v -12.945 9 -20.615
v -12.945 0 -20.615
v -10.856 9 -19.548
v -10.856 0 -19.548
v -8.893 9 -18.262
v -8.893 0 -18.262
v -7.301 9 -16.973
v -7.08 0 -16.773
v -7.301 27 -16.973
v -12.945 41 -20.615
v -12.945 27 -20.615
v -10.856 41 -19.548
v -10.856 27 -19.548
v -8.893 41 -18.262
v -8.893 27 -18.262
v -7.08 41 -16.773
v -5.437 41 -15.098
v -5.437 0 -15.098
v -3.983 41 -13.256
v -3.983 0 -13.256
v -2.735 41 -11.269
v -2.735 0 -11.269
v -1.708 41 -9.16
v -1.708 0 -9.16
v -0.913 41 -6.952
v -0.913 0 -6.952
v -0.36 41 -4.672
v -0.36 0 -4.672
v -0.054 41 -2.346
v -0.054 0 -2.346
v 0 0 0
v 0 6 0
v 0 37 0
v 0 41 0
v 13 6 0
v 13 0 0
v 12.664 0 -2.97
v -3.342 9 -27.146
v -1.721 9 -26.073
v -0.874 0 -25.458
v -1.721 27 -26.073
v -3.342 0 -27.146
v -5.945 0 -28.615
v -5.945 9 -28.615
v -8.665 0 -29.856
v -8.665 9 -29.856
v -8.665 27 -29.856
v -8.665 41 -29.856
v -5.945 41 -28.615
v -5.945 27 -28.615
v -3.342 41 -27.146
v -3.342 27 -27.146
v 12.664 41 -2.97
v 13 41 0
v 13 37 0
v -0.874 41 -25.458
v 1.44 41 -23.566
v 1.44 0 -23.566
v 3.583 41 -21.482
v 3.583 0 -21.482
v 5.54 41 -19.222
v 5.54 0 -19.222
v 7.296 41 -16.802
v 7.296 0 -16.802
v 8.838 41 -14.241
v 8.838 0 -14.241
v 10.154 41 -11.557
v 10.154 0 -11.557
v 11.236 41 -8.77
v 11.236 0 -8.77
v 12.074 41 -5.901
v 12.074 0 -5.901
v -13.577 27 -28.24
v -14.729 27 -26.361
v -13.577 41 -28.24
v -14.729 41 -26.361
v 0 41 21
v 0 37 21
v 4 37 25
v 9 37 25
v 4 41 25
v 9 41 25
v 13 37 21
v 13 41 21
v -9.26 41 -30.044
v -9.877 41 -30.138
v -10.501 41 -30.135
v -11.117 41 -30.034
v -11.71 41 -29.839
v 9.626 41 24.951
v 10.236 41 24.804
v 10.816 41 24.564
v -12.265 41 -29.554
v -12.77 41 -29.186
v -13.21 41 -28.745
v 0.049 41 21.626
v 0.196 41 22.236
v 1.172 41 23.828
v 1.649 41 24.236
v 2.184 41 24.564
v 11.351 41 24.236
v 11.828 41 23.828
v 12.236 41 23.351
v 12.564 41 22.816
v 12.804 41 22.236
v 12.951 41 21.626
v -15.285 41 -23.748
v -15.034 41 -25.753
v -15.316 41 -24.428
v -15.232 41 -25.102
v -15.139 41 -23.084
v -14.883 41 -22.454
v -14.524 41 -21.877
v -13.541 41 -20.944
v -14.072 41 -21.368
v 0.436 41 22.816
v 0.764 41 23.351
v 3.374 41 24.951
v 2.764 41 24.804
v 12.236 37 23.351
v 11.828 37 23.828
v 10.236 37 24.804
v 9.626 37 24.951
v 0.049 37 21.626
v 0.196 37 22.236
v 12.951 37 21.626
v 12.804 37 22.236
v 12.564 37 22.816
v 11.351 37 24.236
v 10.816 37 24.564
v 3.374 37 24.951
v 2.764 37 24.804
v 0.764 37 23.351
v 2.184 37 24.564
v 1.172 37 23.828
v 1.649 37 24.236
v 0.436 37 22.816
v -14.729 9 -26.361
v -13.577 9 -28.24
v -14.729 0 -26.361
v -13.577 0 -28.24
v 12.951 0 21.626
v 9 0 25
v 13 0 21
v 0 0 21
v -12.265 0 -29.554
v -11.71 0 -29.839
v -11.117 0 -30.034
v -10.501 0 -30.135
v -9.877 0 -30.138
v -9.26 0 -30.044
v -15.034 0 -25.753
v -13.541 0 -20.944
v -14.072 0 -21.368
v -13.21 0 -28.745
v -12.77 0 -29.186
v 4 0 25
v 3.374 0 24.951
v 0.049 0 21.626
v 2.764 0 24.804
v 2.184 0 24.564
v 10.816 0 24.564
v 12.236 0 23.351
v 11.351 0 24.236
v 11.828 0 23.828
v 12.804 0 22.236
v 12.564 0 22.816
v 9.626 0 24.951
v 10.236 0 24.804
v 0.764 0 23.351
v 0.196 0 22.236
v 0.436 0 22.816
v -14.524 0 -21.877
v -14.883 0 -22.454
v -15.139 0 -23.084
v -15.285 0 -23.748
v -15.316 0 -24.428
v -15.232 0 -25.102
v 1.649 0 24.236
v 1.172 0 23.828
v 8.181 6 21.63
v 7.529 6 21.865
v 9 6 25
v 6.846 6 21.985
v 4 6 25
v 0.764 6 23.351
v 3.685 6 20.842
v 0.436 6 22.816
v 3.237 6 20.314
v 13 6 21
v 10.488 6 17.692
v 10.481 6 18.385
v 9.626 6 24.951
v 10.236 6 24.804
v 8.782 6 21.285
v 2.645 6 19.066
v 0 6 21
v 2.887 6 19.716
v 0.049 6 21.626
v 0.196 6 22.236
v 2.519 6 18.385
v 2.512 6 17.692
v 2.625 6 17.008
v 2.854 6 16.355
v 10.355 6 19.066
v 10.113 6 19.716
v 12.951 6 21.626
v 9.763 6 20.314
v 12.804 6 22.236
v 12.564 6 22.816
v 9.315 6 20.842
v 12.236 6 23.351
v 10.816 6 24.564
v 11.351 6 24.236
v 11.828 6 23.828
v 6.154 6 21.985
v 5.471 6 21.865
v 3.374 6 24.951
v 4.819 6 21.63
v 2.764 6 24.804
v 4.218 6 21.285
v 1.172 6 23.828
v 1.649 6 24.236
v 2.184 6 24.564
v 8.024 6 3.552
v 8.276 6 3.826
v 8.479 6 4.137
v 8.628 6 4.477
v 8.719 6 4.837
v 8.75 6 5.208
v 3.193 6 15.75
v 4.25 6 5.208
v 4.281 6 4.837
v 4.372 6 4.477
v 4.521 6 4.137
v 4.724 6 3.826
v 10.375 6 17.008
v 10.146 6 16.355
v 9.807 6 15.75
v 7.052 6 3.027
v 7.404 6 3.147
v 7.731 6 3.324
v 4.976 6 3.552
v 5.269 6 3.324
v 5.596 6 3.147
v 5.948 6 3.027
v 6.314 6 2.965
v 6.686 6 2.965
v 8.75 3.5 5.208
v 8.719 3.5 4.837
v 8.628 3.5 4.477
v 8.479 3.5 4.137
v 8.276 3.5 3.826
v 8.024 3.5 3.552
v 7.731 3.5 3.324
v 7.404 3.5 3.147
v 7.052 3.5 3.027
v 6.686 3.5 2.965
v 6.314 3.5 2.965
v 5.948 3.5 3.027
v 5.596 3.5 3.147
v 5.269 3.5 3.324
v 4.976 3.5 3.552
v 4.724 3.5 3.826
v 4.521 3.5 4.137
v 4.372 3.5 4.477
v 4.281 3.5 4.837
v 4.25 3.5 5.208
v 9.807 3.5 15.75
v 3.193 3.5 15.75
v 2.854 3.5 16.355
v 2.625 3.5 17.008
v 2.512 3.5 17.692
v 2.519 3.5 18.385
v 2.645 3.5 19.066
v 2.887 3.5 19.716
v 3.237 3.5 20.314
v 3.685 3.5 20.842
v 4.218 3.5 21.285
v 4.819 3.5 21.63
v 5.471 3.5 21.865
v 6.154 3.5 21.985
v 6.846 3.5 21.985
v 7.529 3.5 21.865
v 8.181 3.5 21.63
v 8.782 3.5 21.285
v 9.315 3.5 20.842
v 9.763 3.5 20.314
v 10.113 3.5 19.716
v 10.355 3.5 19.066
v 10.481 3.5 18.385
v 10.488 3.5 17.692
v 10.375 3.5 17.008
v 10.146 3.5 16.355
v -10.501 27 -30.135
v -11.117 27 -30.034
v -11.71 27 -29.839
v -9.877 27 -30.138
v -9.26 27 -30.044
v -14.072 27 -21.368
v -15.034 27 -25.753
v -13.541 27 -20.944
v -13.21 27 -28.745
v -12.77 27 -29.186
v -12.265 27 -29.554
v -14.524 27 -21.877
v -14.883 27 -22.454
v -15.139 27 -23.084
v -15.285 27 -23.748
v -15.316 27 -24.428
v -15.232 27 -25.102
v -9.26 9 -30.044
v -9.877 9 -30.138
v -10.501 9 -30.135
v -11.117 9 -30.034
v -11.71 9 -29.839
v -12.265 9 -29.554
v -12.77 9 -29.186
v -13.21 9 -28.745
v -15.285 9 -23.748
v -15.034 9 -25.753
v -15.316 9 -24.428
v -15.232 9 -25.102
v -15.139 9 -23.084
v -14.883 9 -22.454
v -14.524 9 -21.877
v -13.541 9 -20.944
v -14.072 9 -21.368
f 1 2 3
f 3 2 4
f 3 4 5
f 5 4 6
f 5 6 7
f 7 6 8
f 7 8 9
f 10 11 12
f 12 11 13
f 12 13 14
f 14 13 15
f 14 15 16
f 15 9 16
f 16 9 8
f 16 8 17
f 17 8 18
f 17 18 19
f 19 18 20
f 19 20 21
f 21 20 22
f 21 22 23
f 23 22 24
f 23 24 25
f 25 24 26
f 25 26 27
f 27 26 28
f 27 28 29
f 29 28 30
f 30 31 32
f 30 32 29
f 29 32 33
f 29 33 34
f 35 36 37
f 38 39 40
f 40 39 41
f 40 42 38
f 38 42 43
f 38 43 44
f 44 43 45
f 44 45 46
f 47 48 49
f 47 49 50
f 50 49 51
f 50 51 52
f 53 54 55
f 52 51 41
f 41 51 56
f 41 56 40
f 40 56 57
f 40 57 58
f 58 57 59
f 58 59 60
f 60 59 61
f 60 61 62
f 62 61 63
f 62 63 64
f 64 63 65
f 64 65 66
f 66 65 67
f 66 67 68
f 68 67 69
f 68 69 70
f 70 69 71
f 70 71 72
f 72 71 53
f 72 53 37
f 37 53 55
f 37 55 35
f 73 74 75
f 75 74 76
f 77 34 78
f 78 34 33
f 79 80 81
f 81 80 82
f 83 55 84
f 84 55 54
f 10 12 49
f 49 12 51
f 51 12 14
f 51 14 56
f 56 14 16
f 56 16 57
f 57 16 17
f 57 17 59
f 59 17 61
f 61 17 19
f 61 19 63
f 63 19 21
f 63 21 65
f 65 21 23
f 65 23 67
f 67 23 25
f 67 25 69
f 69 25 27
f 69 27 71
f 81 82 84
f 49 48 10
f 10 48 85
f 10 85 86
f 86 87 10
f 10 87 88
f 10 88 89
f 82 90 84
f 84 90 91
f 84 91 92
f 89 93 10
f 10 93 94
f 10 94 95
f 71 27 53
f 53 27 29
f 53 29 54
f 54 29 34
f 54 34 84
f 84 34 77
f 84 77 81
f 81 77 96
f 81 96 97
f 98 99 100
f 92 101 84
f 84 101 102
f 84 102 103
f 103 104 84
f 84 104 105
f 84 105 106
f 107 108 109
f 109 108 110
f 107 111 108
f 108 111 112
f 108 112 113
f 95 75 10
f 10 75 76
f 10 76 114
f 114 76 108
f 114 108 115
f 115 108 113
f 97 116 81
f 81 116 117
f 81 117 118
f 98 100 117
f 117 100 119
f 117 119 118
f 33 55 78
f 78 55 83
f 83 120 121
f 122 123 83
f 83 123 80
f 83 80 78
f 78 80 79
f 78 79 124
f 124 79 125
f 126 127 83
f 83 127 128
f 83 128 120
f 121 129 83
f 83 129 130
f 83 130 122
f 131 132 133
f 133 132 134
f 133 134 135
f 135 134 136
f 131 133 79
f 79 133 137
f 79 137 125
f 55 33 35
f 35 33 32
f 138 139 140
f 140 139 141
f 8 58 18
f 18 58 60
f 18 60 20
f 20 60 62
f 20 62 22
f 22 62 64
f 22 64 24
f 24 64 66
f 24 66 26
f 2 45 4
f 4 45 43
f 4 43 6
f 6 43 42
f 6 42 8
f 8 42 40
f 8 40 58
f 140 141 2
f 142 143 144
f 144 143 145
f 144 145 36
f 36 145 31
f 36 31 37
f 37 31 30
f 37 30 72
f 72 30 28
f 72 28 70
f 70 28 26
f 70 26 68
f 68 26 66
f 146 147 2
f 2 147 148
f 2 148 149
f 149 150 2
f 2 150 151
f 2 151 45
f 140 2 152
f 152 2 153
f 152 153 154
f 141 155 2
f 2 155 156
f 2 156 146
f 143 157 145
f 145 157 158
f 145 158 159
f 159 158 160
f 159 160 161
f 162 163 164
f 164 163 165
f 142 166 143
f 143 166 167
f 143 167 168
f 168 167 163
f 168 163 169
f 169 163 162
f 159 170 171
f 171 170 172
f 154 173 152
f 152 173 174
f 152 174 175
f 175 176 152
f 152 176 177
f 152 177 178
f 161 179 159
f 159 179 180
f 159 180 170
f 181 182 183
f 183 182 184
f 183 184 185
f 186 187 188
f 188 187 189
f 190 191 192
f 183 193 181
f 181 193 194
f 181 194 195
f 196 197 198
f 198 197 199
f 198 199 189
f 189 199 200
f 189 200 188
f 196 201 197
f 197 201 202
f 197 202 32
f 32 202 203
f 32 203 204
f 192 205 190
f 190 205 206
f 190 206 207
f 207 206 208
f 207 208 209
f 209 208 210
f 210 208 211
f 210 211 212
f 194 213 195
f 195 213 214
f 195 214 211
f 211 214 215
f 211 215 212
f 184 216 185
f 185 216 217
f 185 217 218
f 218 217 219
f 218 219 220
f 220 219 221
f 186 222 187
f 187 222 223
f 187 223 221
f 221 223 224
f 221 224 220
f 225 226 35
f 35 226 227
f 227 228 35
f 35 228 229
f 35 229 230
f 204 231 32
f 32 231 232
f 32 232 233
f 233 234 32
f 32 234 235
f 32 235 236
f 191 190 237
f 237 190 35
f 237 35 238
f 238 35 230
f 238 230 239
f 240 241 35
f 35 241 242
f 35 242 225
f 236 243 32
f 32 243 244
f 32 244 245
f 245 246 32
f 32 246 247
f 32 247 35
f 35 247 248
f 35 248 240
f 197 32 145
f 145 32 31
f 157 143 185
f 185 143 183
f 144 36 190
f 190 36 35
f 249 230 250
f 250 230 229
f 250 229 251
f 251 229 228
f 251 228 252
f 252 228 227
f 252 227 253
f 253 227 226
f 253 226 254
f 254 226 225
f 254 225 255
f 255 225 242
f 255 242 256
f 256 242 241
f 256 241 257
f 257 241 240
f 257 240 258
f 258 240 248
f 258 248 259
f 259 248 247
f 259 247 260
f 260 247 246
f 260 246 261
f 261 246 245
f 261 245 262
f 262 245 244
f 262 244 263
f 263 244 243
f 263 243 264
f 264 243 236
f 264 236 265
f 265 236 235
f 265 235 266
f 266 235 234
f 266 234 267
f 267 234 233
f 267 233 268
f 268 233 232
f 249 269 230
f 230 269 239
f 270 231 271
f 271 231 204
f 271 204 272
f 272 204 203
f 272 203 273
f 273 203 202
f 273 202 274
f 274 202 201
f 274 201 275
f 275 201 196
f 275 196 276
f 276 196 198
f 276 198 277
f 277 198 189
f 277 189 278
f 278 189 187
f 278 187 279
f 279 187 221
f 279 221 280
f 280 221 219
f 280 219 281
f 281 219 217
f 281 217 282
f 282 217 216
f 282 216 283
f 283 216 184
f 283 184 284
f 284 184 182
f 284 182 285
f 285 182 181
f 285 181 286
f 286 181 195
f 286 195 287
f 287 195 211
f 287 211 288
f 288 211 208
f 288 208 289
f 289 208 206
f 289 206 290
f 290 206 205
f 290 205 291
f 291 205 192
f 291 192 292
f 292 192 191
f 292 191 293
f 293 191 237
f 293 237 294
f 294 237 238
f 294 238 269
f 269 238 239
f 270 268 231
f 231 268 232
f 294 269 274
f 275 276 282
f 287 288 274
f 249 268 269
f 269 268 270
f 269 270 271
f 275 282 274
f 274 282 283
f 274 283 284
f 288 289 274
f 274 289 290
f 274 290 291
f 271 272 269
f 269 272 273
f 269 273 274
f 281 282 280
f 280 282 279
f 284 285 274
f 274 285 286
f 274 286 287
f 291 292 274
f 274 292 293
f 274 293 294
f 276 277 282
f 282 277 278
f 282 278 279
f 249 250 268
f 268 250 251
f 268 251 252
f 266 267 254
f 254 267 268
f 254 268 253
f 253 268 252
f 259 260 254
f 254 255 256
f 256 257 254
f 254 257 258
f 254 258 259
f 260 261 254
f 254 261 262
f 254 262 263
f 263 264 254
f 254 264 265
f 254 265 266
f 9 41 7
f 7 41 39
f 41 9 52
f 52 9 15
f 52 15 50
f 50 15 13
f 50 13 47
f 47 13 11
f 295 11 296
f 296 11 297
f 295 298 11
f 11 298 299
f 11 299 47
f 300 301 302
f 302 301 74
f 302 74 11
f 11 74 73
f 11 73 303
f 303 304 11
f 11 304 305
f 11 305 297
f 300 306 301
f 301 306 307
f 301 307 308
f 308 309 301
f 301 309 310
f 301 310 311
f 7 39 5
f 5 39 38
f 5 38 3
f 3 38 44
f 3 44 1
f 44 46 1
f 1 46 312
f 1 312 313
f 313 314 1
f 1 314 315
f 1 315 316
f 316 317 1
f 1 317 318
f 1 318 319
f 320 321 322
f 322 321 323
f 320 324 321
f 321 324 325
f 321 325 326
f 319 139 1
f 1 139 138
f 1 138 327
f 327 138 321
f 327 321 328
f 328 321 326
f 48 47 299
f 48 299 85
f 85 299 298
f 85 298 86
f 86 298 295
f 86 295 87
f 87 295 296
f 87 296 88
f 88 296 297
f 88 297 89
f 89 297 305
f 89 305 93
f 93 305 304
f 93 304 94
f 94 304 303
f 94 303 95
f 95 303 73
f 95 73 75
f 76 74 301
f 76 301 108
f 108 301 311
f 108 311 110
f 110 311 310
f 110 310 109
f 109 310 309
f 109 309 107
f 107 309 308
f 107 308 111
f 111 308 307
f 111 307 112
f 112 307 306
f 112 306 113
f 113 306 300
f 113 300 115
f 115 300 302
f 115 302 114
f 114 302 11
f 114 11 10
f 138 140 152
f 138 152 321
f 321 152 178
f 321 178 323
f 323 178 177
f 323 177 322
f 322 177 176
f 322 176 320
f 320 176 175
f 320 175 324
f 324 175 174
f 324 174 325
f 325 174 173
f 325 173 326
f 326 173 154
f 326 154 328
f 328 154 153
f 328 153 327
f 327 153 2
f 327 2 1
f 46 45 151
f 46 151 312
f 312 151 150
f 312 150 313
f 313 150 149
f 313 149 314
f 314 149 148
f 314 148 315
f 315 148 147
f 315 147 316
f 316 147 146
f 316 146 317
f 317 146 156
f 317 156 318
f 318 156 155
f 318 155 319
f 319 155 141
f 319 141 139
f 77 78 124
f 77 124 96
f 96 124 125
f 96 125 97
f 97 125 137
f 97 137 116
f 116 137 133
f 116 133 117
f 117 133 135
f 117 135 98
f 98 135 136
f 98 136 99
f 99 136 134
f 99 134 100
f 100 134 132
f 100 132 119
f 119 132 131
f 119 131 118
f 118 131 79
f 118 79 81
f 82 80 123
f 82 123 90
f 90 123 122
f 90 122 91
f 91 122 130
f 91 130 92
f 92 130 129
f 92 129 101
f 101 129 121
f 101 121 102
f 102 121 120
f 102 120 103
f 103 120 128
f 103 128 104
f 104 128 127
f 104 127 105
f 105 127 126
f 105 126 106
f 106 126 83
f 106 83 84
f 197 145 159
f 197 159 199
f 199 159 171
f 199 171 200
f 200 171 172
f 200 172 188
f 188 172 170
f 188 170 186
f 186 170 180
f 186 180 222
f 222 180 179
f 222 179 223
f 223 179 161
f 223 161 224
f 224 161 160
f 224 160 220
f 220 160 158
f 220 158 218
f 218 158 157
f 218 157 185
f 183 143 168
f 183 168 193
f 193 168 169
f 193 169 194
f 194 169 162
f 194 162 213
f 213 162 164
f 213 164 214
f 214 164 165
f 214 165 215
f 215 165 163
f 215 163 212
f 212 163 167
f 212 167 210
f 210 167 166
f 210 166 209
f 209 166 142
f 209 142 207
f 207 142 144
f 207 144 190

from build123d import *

# Parameters (mm, degrees)
SKETCH1_W           = 13
SKETCH1_H           = 25
BOSS_EXTRUDE1_DEPTH = 6
SKETCH2_W           = 13
SKETCH2_H           = 25
BOSS_EXTRUDE2_DEPTH = 4
CUT_EXTRUDE1_DEPTH  = 2.5
BOSS_EXTRUDE3_DEPTH = 41
CUT_EXTRUDE2_DEPTH  = 18
FILLET2_R           = 4
FILLET3_R           = 4


with BuildPart() as part:
    # Sketch1 → Boss-Extrude1 (new body)
    with BuildSketch(Plane(origin=(0, 0, 0), x_dir=(1, 0, 0), z_dir=(0, 1, 0))):
        with Locations((6.5, -12.5)):
            Rectangle(SKETCH1_W, SKETCH1_H)
    extrude(amount=BOSS_EXTRUDE1_DEPTH)

    # Sketch3 → Cut-Extrude1 (cut)
    with BuildSketch(Plane(origin=(0, 6, 0), x_dir=(1, 0, 0), z_dir=(0, 1, 0))):
        with BuildLine():
            Line((4.25, -5.207729985), (3.192810861, -15.75))
            ThreePointArc((3.192810861, -15.75), (6.5, -14), (9.807189139, -15.75))
            Line((9.807189139, -15.75), (8.75, -5.207729985))
            ThreePointArc((8.75, -5.207729985), (6.5, -2.957729985), (4.25, -5.207729985))
        make_face()
        with BuildLine():
            ThreePointArc((9.807189139, -15.75), (6.5, -14), (3.192810861, -15.75))
            Line((3.192810861, -15.75), (3.192810861, -20.25))
            ThreePointArc((3.192810861, -20.25), (6.5, -22), (9.807189139, -20.25))
            Line((9.807189139, -20.25), (9.807189139, -15.75))
        make_face()
        with BuildLine():
            Line((3.192810861, -20.25), (3.192810861, -15.75))
            ThreePointArc((3.192810861, -15.75), (2.5, -18), (3.192810861, -20.25))
        make_face()
        with BuildLine():
            ThreePointArc((10.5, -18), (10.322875656, -16.822875656), (9.807189139, -15.75))
            Line((9.807189139, -15.75), (9.807189139, -20.25))
            ThreePointArc((9.807189139, -20.25), (10.322875656, -19.177124344), (10.5, -18))
        make_face()
    extrude(amount=-CUT_EXTRUDE1_DEPTH, mode=Mode.SUBTRACT)



with BuildPart() as body_2:
    # Sketch2 → Boss-Extrude2 (new body)
    with BuildSketch(Plane(origin=(0, 37, 0), x_dir=(1, 0, 0), z_dir=(0, 1, 0))):
        with Locations((6.5, -12.5)):
            Rectangle(SKETCH2_W, SKETCH2_H)
    extrude(amount=BOSS_EXTRUDE2_DEPTH)


with BuildPart() as part_1:
    add(part.part)

    add(body_2.part)  # Boss-Extrude3 merges body 2
    # Sketch4 → Boss-Extrude3 (add, through all)
    with BuildSketch(Plane.XZ):
        with BuildLine():
            Line((-17.376544105, -22.043835706), (-11.894619464, -30.983507581))
            ThreePointArc((-11.894619464, -30.983507581), (5.405335132, -19.390755444), (13, 0))
            Line((13, 0), (0, 0))
            ThreePointArc((0, 0), (-4.675917284, -14.184745799), (-17.376544105, -22.043835706))
        make_face()
    extrude(amount=-BOSS_EXTRUDE3_DEPTH)

    # Sketch5 → Cut-Extrude2 (cut)
    with BuildSketch(Plane(origin=(0, 9, 0), x_dir=(-1, 0, 0), z_dir=(0, -1, 0))):
        with BuildLine():
            Line((1.720669879, 26.072760653), (7.3010615, 16.972513332))
            ThreePointArc((7.3010615, 16.972513332), (12.005611012, 20.170145468), (17.376544105, 22.043835706))
            Line((17.376544105, 22.043835706), (11.894619464, 30.983507581))
            ThreePointArc((11.894619464, 30.983507581), (6.607240555, 28.943325821), (1.720669879, 26.072760653))
        make_face()
    extrude(amount=-CUT_EXTRUDE2_DEPTH, mode=Mode.SUBTRACT)

    # Fillet2
    fillet2_edges = [part_1.edges().sort_by_distance(p)[0] for p in [
        (-17.376544105, 34, -22.043835706),
        (-11.894619464, 34, -30.983507581),
        (-17.376544105, 4.5, -22.043835706),
        (-11.894619464, 4.5, -30.983507581),
    ]]
    fillet(fillet2_edges, radius=FILLET2_R)

    # Fillet3
    fillet3_edges = [part_1.edges().sort_by_distance(p)[0] for p in [
        (0, 3, 25),
        (13, 3, 25),
        (13, 39, 25),
        (0, 39, 25),
    ]]
    fillet(fillet3_edges, radius=FILLET3_R)


solid = part_1.part
